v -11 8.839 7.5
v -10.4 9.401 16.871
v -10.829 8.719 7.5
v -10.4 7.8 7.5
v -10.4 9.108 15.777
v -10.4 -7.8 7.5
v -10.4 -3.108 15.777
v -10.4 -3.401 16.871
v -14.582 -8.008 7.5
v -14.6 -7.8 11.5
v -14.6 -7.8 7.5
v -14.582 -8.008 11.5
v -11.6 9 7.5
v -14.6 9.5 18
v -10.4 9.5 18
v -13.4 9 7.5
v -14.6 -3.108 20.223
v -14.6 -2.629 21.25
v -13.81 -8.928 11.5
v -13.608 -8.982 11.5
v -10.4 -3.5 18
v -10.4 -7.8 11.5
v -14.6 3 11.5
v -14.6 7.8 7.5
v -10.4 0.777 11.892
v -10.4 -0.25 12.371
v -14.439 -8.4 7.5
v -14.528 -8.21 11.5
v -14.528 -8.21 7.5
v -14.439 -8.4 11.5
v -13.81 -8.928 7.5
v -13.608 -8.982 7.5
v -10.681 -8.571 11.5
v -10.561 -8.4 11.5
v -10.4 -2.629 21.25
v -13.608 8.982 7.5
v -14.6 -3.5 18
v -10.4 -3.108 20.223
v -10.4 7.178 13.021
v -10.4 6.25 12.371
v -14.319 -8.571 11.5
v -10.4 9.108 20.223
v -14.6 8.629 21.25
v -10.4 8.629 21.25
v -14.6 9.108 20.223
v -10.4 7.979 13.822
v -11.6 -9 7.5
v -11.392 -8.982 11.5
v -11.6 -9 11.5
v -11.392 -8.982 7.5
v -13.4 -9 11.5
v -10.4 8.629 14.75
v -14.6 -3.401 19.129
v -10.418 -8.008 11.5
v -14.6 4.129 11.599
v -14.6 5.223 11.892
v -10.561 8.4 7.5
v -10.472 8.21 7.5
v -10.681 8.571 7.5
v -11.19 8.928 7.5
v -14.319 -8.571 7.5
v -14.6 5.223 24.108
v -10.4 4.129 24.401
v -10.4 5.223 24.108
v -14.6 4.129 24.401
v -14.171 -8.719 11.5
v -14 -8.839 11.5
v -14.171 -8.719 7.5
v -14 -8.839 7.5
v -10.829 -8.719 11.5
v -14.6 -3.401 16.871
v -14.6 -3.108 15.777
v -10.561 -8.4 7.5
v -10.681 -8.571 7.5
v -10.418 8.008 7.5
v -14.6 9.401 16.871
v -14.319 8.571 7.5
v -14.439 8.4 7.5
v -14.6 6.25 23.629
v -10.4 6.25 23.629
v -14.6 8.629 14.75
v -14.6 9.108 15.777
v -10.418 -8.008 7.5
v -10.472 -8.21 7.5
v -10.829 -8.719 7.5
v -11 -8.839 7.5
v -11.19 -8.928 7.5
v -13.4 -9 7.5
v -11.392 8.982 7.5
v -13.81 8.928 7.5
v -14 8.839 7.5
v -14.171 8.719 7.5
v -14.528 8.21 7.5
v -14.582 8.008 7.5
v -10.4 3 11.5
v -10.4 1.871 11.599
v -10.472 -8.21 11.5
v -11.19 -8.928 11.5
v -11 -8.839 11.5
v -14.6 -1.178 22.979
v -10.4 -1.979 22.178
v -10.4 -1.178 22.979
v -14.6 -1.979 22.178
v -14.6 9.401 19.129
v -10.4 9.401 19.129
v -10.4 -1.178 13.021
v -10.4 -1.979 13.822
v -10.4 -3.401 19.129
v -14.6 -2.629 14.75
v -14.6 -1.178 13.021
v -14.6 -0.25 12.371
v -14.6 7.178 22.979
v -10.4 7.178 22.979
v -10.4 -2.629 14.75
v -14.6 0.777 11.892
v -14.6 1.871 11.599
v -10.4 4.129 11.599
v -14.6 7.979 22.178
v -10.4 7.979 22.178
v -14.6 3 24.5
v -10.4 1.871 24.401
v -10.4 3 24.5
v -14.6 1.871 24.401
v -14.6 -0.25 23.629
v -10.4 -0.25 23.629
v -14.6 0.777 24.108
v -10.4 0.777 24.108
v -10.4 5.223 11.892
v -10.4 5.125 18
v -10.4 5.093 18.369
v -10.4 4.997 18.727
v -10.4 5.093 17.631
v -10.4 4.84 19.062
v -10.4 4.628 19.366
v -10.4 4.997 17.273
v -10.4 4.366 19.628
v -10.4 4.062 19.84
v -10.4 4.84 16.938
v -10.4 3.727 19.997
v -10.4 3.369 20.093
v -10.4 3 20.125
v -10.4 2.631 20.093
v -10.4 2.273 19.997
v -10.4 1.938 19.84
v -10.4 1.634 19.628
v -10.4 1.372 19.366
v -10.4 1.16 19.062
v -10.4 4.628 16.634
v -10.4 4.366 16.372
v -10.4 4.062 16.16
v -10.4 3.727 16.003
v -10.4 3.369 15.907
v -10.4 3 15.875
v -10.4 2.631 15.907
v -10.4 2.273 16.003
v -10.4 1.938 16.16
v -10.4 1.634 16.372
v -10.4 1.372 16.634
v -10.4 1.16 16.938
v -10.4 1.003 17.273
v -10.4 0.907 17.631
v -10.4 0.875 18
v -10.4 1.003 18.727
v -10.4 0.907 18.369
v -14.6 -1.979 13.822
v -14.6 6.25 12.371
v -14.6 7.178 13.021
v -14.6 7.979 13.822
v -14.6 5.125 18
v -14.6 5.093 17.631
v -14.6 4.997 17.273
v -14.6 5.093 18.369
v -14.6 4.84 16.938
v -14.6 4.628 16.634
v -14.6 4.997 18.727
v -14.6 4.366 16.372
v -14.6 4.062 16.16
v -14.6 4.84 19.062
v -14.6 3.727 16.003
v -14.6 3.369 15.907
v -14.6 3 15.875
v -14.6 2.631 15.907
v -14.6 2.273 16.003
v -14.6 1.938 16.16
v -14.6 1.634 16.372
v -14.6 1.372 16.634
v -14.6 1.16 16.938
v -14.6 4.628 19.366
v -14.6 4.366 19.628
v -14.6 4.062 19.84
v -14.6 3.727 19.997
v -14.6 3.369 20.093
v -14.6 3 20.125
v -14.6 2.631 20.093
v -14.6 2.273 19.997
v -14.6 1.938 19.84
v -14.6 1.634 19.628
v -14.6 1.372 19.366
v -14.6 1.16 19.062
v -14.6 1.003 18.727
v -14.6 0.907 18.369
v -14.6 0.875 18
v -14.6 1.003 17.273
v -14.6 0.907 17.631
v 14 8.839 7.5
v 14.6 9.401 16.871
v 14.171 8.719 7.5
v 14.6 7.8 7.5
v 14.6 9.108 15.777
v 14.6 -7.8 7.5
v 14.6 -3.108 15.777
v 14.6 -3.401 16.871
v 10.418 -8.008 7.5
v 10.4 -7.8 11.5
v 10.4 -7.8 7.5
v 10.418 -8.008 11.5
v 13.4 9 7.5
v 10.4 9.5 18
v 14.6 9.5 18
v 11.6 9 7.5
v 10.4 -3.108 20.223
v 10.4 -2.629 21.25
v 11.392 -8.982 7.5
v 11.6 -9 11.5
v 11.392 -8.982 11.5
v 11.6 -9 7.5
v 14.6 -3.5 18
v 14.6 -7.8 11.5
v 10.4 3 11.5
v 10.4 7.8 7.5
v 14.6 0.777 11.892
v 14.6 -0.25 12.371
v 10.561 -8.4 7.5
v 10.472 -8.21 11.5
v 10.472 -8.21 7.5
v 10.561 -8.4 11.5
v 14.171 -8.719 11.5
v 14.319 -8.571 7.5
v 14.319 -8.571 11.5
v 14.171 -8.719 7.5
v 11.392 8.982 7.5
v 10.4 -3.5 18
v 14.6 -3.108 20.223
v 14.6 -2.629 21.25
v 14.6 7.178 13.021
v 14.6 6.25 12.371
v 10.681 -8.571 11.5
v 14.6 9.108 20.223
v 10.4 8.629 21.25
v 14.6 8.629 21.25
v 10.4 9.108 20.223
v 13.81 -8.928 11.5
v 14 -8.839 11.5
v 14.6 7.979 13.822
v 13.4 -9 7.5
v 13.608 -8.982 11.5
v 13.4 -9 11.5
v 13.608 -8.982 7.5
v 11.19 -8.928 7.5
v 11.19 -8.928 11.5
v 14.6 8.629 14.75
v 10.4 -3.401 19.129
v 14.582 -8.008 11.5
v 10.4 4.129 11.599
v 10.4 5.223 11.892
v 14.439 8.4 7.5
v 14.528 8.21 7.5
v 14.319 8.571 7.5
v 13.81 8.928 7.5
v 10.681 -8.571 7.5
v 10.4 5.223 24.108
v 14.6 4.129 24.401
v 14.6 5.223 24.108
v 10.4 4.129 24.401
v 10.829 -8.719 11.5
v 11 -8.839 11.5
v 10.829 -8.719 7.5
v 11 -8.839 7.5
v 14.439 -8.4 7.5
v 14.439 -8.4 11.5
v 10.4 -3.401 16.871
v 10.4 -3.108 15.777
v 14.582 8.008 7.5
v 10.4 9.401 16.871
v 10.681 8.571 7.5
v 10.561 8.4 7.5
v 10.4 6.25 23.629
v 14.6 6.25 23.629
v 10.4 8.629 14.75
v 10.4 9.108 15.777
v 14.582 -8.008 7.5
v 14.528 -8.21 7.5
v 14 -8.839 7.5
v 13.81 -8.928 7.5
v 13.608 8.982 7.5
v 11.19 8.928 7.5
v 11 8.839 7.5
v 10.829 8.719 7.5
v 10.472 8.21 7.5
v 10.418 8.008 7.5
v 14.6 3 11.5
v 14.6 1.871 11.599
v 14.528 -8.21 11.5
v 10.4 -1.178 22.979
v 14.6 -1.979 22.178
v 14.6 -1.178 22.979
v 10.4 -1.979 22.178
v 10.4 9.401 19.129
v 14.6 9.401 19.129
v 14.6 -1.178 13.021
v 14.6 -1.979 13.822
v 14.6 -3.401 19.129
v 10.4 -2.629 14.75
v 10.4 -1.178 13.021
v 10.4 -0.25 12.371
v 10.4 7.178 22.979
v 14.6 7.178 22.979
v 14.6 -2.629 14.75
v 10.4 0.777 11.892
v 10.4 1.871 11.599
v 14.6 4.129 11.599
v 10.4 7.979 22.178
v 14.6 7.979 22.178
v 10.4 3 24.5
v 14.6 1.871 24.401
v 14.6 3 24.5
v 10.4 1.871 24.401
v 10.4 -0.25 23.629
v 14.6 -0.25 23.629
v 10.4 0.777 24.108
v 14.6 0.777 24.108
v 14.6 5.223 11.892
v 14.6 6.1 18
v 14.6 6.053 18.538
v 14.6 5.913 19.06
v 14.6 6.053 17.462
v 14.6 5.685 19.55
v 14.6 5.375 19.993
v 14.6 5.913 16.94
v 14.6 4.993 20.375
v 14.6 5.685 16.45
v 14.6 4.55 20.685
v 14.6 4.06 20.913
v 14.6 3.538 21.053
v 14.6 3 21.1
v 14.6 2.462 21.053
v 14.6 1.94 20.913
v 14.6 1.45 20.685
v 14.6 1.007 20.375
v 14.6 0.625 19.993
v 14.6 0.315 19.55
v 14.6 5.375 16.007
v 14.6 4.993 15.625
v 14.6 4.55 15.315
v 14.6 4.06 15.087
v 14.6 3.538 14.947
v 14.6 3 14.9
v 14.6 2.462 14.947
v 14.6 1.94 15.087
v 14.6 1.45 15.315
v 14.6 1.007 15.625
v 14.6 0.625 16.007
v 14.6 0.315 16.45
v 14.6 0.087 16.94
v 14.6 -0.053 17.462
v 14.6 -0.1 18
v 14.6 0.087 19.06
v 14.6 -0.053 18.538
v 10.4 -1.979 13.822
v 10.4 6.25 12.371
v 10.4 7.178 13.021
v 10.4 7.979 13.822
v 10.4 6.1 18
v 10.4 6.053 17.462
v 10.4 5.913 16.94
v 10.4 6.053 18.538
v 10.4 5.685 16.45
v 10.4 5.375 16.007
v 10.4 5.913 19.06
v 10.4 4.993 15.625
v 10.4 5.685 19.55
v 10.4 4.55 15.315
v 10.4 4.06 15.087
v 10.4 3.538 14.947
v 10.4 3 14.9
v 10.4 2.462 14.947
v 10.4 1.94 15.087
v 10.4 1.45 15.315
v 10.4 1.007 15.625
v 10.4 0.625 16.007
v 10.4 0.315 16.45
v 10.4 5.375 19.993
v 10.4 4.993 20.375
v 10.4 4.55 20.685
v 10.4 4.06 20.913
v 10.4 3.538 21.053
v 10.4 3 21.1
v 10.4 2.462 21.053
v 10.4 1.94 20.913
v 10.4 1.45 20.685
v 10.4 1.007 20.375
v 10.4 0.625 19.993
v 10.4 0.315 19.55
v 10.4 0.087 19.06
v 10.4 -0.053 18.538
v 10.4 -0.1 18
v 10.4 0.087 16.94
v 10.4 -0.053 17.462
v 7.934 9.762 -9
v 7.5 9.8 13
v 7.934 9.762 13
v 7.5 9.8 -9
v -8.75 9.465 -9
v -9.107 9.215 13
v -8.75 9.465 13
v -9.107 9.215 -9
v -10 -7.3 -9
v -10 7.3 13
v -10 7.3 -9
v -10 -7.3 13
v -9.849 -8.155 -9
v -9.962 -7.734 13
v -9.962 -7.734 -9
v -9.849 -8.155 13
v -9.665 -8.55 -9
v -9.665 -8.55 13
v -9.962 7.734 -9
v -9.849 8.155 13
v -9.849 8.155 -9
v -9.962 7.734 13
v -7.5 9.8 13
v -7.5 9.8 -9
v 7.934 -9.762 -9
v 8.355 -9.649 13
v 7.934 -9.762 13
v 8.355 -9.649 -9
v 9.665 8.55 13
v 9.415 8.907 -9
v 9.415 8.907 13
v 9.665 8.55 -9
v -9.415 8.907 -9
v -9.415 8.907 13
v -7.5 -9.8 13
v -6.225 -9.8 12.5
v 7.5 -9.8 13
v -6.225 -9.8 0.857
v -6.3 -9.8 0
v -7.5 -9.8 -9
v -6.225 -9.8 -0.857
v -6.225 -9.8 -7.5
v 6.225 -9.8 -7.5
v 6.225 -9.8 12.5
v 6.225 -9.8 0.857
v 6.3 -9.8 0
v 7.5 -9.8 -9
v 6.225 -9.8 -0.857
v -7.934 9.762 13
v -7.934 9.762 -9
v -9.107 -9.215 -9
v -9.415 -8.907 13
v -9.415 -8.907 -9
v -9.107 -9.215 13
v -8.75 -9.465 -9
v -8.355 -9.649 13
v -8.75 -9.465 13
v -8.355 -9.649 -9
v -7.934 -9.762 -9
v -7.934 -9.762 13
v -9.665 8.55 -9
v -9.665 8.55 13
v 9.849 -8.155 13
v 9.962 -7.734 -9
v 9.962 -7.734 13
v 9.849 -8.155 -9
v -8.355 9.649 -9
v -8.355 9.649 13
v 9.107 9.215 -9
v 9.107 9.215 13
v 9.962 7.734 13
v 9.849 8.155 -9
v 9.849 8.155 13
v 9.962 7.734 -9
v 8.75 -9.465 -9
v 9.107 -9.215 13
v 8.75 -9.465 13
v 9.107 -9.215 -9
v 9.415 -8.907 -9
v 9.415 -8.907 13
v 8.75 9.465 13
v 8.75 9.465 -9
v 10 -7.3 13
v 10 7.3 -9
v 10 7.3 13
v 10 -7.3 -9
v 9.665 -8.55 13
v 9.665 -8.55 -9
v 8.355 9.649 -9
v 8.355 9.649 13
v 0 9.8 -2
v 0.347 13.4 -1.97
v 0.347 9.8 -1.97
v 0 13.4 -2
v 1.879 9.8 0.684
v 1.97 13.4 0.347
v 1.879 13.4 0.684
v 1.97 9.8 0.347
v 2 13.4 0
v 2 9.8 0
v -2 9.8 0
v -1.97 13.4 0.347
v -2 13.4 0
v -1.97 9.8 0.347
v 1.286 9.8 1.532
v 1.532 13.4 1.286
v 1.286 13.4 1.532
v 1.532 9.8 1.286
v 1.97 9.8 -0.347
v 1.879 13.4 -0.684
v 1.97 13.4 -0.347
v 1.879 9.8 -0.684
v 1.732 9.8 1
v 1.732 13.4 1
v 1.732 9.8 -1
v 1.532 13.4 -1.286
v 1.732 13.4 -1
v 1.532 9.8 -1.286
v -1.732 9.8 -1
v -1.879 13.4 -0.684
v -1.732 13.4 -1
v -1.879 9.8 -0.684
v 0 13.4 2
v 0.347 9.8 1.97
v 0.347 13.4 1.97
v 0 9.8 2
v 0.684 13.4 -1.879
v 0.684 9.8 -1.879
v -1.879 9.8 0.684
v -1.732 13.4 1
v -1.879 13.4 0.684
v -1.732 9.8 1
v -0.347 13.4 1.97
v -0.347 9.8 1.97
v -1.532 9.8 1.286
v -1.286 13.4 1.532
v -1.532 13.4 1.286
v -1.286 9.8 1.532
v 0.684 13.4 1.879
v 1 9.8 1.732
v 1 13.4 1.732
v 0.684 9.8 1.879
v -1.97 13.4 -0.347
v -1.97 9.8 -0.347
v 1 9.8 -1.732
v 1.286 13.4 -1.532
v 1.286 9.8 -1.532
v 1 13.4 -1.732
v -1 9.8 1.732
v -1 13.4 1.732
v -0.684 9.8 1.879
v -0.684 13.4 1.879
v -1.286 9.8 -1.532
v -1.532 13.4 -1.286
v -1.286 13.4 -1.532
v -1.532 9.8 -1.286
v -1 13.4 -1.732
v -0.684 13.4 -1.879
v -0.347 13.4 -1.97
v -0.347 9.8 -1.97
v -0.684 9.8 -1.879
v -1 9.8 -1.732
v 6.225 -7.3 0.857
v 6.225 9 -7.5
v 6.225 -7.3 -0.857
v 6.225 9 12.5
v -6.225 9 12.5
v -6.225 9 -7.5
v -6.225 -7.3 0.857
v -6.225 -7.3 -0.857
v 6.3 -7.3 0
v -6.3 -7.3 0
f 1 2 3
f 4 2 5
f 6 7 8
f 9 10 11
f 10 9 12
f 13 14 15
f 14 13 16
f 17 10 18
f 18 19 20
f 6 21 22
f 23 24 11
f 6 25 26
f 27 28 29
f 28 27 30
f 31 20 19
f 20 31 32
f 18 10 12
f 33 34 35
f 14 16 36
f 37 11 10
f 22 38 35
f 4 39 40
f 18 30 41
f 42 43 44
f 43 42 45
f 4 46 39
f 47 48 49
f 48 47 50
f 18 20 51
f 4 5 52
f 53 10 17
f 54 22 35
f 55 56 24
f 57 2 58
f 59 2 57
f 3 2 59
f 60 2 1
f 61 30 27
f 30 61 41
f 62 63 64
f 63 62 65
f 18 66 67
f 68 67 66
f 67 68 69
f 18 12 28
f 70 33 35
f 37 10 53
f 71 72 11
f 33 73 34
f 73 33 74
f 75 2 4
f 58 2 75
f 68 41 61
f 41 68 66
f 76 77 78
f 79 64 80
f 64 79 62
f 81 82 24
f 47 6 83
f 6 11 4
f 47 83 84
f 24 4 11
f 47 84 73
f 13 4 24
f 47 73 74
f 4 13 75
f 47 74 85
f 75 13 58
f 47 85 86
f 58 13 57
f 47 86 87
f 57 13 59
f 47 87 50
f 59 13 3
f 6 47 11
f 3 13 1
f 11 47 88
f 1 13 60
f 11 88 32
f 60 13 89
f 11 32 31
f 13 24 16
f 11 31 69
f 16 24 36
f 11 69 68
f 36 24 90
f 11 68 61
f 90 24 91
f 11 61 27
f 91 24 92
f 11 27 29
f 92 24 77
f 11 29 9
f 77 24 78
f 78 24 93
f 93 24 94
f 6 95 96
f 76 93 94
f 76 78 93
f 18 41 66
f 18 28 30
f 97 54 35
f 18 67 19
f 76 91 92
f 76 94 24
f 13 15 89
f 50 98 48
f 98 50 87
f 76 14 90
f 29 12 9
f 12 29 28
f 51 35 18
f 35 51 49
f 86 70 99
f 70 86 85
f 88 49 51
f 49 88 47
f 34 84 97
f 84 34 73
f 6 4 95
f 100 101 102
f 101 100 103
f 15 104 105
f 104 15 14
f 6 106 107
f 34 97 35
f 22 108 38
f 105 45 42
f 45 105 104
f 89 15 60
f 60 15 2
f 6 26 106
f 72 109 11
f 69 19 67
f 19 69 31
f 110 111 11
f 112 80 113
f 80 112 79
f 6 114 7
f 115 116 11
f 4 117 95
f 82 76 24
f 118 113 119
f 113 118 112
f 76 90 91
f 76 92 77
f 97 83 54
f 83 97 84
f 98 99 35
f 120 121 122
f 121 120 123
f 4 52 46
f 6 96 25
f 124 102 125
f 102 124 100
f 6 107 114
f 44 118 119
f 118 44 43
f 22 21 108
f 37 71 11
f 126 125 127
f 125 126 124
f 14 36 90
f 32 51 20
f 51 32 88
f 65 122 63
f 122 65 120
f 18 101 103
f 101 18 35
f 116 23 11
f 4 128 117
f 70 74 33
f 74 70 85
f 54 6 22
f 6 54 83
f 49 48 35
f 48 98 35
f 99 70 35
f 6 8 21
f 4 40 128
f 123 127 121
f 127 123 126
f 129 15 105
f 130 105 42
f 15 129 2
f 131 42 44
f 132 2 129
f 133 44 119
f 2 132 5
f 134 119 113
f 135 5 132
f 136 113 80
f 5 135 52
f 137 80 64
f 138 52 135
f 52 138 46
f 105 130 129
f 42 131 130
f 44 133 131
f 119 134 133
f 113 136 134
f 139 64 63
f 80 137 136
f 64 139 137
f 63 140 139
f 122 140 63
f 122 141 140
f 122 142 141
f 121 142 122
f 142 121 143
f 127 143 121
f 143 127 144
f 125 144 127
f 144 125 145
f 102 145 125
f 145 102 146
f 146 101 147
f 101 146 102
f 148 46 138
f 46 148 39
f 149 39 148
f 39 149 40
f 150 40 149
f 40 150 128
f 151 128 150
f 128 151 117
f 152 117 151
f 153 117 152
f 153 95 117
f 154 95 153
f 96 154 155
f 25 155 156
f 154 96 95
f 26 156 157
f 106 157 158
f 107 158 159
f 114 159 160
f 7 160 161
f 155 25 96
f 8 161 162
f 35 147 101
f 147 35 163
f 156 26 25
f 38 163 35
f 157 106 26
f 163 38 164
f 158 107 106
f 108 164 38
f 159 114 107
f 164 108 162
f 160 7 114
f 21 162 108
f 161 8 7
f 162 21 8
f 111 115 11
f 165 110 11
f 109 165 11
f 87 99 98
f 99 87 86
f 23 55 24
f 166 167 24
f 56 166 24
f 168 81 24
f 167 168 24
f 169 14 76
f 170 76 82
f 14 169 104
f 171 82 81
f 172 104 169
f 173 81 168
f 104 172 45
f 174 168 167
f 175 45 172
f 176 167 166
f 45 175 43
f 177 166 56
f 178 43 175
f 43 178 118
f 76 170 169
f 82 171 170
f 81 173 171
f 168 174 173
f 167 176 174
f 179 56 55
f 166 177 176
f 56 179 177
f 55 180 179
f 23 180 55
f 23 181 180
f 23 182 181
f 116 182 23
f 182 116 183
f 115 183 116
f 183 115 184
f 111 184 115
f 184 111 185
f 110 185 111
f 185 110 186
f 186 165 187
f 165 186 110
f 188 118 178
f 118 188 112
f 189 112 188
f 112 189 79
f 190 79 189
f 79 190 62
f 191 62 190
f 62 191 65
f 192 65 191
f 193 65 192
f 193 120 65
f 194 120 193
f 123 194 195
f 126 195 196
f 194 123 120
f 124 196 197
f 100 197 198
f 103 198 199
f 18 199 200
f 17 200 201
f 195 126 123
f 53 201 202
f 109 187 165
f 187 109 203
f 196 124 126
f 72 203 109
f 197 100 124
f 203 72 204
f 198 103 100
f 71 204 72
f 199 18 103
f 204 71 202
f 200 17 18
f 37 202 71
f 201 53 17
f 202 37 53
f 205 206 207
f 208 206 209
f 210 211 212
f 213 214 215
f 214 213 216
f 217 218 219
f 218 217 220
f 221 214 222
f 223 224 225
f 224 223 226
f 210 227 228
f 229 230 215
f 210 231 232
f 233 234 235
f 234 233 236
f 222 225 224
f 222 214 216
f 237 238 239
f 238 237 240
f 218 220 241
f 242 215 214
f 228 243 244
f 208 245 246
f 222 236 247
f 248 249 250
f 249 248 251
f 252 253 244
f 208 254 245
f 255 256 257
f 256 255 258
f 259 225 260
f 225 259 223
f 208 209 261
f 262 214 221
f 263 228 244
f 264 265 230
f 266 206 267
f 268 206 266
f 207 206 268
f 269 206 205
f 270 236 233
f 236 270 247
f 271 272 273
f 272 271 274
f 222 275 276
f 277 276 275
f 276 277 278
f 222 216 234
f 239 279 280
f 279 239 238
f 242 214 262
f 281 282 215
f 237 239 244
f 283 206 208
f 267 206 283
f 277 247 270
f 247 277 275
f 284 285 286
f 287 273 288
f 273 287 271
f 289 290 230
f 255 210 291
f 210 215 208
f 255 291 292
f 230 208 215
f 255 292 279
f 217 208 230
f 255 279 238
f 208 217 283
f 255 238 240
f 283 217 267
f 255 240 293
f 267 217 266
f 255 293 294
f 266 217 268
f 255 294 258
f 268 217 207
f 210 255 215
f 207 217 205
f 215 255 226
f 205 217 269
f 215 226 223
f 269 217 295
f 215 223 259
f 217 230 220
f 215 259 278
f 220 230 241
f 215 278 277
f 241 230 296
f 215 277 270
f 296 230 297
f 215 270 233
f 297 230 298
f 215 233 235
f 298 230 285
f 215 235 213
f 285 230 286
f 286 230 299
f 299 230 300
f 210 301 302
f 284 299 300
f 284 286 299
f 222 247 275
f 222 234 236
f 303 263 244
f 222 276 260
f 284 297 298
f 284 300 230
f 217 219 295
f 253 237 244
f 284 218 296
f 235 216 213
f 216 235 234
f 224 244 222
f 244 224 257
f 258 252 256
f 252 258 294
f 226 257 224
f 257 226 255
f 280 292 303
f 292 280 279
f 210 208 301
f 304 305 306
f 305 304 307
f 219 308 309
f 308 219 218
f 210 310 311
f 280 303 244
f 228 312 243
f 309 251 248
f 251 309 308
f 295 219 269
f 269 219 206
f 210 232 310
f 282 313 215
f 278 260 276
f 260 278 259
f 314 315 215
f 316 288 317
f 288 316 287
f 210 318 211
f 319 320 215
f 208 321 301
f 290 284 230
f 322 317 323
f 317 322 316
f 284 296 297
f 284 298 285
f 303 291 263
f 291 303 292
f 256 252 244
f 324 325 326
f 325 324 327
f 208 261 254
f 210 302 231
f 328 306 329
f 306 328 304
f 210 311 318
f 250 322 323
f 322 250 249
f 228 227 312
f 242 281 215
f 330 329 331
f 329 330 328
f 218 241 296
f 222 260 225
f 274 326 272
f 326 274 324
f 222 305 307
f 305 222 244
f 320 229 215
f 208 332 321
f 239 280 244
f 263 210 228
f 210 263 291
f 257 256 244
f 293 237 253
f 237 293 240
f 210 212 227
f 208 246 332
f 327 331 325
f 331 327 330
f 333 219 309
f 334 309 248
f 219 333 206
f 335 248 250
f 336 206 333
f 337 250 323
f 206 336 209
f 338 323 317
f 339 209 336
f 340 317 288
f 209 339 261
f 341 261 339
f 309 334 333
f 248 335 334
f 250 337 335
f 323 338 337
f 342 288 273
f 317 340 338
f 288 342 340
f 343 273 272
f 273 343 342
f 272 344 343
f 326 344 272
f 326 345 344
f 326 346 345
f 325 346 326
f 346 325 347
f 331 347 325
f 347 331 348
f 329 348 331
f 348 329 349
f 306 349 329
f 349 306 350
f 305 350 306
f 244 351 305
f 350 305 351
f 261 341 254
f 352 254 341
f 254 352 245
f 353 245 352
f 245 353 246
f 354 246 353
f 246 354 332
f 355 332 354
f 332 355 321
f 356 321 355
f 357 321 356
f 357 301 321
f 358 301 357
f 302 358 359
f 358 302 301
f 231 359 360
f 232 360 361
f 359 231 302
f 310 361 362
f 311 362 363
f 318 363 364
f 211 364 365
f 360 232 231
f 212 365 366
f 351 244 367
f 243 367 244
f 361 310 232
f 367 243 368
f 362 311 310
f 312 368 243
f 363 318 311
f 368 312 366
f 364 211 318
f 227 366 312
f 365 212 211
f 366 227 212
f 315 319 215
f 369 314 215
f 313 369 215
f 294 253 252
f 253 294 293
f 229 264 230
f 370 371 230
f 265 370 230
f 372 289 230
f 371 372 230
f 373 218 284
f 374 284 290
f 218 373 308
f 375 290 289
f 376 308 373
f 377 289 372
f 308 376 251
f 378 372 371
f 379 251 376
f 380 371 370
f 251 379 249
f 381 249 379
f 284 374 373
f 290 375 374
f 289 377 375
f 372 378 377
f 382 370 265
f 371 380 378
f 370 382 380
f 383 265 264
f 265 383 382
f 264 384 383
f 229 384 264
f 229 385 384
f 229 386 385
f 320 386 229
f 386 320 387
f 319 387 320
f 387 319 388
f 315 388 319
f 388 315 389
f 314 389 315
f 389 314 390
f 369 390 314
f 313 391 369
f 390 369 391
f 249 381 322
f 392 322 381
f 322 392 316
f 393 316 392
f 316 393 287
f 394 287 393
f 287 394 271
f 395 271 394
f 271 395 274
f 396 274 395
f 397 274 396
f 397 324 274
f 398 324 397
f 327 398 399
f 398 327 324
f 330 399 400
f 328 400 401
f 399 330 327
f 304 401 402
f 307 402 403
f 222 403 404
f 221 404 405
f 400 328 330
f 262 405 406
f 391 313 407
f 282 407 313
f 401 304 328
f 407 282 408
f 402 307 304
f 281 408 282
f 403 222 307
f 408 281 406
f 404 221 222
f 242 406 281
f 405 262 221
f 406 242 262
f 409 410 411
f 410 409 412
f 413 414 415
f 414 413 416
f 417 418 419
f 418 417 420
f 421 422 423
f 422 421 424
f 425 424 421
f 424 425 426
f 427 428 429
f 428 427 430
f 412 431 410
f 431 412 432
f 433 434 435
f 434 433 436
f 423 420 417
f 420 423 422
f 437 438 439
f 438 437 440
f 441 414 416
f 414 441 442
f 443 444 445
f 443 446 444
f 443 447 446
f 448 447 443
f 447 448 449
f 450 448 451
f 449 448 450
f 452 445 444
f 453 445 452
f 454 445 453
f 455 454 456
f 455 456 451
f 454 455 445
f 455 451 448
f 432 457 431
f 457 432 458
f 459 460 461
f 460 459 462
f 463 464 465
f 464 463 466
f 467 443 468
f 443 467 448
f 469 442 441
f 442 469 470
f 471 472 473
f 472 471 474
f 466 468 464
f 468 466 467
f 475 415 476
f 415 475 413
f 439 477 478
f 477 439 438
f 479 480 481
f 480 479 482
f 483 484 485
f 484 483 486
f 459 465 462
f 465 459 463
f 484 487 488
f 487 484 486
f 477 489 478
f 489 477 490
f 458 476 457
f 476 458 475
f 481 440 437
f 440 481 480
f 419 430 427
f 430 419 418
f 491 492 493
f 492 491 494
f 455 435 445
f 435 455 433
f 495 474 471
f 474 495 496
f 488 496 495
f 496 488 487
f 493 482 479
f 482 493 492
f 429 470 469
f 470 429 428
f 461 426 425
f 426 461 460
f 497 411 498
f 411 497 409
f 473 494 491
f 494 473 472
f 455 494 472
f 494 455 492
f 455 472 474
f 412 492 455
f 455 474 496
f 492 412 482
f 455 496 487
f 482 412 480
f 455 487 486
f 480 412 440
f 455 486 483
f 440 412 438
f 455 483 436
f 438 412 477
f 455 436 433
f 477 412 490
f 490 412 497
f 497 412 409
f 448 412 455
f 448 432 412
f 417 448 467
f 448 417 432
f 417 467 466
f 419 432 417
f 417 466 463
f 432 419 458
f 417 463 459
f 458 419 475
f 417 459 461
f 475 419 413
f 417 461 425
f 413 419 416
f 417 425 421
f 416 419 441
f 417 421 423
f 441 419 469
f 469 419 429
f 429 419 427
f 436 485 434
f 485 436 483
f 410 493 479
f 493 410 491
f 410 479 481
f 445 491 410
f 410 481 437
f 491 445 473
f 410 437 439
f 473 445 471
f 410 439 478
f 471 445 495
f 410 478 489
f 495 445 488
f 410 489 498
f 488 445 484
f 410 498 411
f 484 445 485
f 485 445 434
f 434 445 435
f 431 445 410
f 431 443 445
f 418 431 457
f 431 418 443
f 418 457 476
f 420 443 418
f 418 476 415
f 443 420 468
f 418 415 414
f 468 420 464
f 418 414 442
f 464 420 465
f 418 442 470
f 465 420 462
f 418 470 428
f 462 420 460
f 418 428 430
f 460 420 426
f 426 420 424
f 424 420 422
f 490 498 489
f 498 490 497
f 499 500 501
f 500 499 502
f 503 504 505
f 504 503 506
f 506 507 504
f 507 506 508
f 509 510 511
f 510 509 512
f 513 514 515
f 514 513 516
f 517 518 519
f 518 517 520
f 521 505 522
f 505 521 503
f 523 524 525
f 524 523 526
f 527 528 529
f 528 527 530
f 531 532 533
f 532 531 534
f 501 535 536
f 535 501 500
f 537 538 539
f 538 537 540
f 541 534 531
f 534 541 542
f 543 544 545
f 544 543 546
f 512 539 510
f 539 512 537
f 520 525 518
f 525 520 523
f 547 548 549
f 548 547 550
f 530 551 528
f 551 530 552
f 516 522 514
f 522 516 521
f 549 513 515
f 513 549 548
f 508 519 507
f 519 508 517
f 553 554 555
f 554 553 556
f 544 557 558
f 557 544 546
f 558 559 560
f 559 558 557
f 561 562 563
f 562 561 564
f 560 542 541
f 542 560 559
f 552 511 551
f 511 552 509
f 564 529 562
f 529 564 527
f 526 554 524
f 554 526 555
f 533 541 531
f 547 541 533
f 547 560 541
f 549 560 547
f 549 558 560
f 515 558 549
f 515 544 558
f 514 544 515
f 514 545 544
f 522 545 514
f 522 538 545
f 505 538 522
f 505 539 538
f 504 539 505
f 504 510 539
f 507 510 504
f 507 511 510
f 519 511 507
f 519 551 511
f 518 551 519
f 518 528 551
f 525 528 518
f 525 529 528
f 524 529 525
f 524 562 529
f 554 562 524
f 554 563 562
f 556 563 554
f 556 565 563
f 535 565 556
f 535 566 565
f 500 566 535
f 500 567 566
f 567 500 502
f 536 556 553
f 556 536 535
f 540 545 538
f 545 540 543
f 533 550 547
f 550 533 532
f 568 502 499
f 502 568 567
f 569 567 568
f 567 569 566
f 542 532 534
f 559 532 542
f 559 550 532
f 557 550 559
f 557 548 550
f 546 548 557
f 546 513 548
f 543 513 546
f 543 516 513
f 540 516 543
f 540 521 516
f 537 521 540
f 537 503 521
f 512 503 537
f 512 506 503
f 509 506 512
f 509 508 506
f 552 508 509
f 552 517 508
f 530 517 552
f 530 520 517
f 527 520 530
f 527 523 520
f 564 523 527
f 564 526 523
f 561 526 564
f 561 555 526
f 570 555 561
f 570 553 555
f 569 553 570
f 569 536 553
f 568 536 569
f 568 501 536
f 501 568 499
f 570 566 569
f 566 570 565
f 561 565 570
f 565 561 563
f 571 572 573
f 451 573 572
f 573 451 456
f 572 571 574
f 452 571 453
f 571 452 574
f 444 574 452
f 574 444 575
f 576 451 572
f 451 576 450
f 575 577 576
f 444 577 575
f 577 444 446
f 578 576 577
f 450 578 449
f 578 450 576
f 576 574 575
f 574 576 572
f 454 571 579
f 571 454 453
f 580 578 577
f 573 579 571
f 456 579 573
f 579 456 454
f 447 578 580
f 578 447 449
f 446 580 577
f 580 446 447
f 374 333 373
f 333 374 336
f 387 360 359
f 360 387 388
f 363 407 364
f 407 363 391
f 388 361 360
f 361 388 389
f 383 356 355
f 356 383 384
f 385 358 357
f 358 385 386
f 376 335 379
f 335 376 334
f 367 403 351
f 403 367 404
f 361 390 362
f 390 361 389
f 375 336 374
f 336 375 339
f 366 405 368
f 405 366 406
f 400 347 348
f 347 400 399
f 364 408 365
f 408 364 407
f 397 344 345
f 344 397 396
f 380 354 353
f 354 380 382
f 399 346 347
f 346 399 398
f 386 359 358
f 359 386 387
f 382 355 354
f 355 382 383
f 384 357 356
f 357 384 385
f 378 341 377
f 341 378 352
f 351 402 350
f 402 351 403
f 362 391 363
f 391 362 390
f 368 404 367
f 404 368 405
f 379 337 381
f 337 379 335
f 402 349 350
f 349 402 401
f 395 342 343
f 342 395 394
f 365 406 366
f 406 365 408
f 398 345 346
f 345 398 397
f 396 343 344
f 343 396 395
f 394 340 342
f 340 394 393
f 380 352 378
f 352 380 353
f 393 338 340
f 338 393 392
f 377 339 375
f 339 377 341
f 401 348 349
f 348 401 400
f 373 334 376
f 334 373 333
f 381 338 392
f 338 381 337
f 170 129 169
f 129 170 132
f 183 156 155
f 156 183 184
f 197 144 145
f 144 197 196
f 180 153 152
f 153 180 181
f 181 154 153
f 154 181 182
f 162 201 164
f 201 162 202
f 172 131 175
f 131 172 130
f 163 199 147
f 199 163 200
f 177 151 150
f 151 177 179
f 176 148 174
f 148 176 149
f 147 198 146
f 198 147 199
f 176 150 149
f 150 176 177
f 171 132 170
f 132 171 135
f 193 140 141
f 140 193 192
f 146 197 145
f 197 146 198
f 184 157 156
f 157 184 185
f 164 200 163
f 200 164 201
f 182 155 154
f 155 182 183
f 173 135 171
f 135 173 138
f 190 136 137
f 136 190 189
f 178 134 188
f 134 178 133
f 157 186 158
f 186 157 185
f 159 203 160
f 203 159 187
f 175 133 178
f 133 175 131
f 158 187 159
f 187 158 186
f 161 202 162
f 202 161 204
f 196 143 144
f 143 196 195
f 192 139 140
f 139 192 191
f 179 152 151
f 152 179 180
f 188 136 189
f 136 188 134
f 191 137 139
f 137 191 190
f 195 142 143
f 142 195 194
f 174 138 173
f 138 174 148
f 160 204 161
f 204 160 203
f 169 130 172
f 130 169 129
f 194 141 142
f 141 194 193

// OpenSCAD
// file: ../rnv1_params.scad
// RNV1 (Robotic Neural Vector 1) - Master Parametric Mechanical Specification
// Units: millimeters (mm)
// Coordinate Frame: +X Forward, +Y Left, +Z Up (Standing Neutral Pose, Floor = Z=0)

$fn = 36;

// --- FDM 3D Print Engineering Tolerances (0.4mm nozzle, PETG / PLA+) ---
WALL_T       = 2.0;    // Primary structural wall thickness (>= 1.6mm requirement)
RIB_T        = 1.8;    // Structural stiffening rib thickness
CLEARANCE    = 0.25;   // Standard FDM press/slip fit clearance
M2_PILOT_D   = 1.75;   // M2 self-tapping pilot hole diameter
M2_CLEAR_D   = 2.3;    // M2 through clearance hole diameter
PIVOT_BOSS_D = 4.0;    // Dual-shear opposing coaxial pivot pin diameter

// --- MG90S Metal-Gear Micro Servo Envelope (TowerPro/Generic standard) ---
MG90S_L      = 22.8;   // Body length along flange axis
MG90S_W      = 12.2;   // Body width
MG90S_H      = 28.5;   // Total housing height (bottom to top gear dome)
MG90S_FLANGE_L = 32.2; // Mounting ear span
MG90S_HOLE_DX  = 27.6; // Mounting hole center-to-center
MG90S_SHAFT_OFF = 5.9; // Output shaft offset from end of 22.8mm body

// --- SG90 9g Micro Servo Envelope ---
SG90_L       = 22.5;
SG90_W       = 12.0;
SG90_H       = 22.5;

// --- Master Kinematic Skeleton Coordinates (mm, Z from Floor = 0) ---
SOLE_PAD_H   = 2.0;    // 2mm silicone anti-slip pad (1mm recessed)
FOOT_L       = 72.0;   // X: -32mm heel to +40mm toe
FOOT_HEEL_X  = -32.0;
FOOT_TOE_X   = 40.0;
FOOT_W       = 46.0;   // Y width per foot
FOOT_PLATE_H = 6.5;    // Rigid foot sole plate thickness

FOOT_Y_CTR   = 26.0;   // Left=+26mm, Right=-26mm (6mm gap between inner edges!)
HIP_ROLL_Y   = 23.0;   // Left=+23mm, Right=-23mm

Z_ANKLE_ROLL = 18.0;   // Ankle roll axis height
Z_KNEE_PITCH = 62.0;   // Knee pitch axis height  (L_shin = 44.0mm)
Z_HIP_PITCH  = 106.0;  // Hip pitch axis height   (L_thigh = 44.0mm)
Z_HIP_ROLL   = 124.0;  // Hip roll axis height    (dZ = 18.0mm)

L_SHIN       = Z_KNEE_PITCH - Z_ANKLE_ROLL; // 44.0 mm
L_THIGH      = Z_HIP_PITCH - Z_KNEE_PITCH;  // 44.0 mm
L_HIP_CLEVIS = Z_HIP_ROLL - Z_HIP_PITCH;    // 18.0 mm

// --- Torso & Pelvis Envelope ---
TORSO_Z_BOT  = 116.0;
TORSO_Z_TOP  = 184.0;
TORSO_H      = TORSO_Z_TOP - TORSO_Z_BOT;   // 68.0 mm
TORSO_W      = 80.0;   // Y: -40 to +40mm
TORSO_D      = 54.0;   // X: -27 to +27mm

// --- Arms ---
SHOULDER_Y   = 46.0;   // Left=+46mm, Right=-46mm
SHOULDER_Z   = 170.0;
ARM_LEN      = 72.0;   // Shoulder to palm tip

// --- 2-DOF Active Spatial Head ---
Z_HEAD_YAW   = 188.0;  // Pan axis Z
Z_HEAD_PITCH = 204.0;  // Tilt axis Z
HEAD_W       = 58.0;   // Y width
HEAD_D       = 44.0;   // X depth
HEAD_H       = 42.0;   // Z height (Z = 196..238mm -> Total Robot Height = 238mm)
HEAD_Z_CTR   = 217.0;

// --- Utility Rounded Box Module ---
module rbox(size, r=2.0, center=true) {
    sx = size[0]; sy = size[1]; sz = size[2];
    rc = min(r, sx/2 - 0.1, sy/2 - 0.1, sz/2 - 0.1);
    translate(center ? [0,0,0] : [sx/2, sy/2, sz/2])
    hull() {
        for (dx = [-sx/2 + rc, sx/2 - rc])
        for (dy = [-sy/2 + rc, sy/2 - rc])
        for (dz = [-sz/2 + rc, sz/2 - rc])
            translate([dx, dy, dz]) sphere(r=rc, $fn=16);
    }
}

module rbox_xy(size, r=2.5, center=true) {
    sx = size[0]; sy = size[1]; sz = size[2];
    rc = min(r, sx/2 - 0.1, sy/2 - 0.1);
    translate(center ? [0,0,0] : [sx/2, sy/2, sz/2])
    linear_extrude(height=sz, center=true)
    offset(r=rc) offset(r=-rc)
        square([sx, sy], center=true);
}
// file: hip_clevis.scad
// RNV1 Part: Hip Roll-to-Pitch Clevis (Connects Hip Roll at Z=+18mm to Hip Pitch at Z=0)
// Local Origin: Hip Pitch axis at (0, 0, 0), Hip Roll axis at (0, -3mm [for L], +18mm)
include <../rnv1_params.scad>

module hip_clevis(side = 1) {
    // side = +1 for Left leg, -1 for Right leg
    y_roll = -side * (FOOT_Y_CTR - HIP_ROLL_Y); // -3mm for Left, +3mm for Right
    difference() {
        union() {
            // Lower Hip Pitch MG90S housing (shaft along +Y at Z=0)
            translate([0, 0, 2.0])
                rbox_xy([20.0, 19.6, 22.0], r=2.5, center=true);

            // Opposing coaxial dual-shear pivot boss at Y = -9.8mm (for Left)
            translate([0, -9.8, 0])
                rotate([90, 0, 0])
                    cylinder(d=PIVOT_BOSS_D, h=3.6);

            // Upper Dual-Shear Hip Roll Clevis Bridge (connects to Pelvis Hip Roll MG90S at Z=+18mm)
            for (sx = [-12.5, 12.5]) {
                hull() {
                    translate([sx, 0, 9.5])
                        rbox_xy([4.2, 18.0, 4.0], r=1.2, center=true);
                    translate([sx, y_roll, L_HIP_CLEVIS])
                        rotate([0, 90, 0])
                            cylinder(d=13.0, h=4.2, center=true);
                }
            }
        }

        // MG90S Hip Pitch Servo Pocket
        translate([0, 0.4, 2.5])
            cube([MG90S_W + CLEARANCE, 18.8, 20.0], center=true);
        translate([0, 9.8, 0])
            rotate([90, 0, 0])
                cylinder(d=12.6, h=5.0, center=true);

        // Hip Roll Clevis Bores (front +X = servo horn, rear -X = opposing pivot boss)
        translate([12.5, y_roll, L_HIP_CLEVIS])
            rotate([0, 90, 0])
                cylinder(d=6.2, h=8.0, center=true);
        translate([-12.5, y_roll, L_HIP_CLEVIS])
            rotate([0, 90, 0])
                cylinder(d=PIVOT_BOSS_D + CLEARANCE, h=8.0, center=true);
    }
}

hip_clevis(1);
// main file
// RNV1 Part: Right Hip Clevis (exact mirror of left hip clevis along Y)
use <hip_clevis.scad>
mirror([0, 1, 0]) hip_clevis(1);
